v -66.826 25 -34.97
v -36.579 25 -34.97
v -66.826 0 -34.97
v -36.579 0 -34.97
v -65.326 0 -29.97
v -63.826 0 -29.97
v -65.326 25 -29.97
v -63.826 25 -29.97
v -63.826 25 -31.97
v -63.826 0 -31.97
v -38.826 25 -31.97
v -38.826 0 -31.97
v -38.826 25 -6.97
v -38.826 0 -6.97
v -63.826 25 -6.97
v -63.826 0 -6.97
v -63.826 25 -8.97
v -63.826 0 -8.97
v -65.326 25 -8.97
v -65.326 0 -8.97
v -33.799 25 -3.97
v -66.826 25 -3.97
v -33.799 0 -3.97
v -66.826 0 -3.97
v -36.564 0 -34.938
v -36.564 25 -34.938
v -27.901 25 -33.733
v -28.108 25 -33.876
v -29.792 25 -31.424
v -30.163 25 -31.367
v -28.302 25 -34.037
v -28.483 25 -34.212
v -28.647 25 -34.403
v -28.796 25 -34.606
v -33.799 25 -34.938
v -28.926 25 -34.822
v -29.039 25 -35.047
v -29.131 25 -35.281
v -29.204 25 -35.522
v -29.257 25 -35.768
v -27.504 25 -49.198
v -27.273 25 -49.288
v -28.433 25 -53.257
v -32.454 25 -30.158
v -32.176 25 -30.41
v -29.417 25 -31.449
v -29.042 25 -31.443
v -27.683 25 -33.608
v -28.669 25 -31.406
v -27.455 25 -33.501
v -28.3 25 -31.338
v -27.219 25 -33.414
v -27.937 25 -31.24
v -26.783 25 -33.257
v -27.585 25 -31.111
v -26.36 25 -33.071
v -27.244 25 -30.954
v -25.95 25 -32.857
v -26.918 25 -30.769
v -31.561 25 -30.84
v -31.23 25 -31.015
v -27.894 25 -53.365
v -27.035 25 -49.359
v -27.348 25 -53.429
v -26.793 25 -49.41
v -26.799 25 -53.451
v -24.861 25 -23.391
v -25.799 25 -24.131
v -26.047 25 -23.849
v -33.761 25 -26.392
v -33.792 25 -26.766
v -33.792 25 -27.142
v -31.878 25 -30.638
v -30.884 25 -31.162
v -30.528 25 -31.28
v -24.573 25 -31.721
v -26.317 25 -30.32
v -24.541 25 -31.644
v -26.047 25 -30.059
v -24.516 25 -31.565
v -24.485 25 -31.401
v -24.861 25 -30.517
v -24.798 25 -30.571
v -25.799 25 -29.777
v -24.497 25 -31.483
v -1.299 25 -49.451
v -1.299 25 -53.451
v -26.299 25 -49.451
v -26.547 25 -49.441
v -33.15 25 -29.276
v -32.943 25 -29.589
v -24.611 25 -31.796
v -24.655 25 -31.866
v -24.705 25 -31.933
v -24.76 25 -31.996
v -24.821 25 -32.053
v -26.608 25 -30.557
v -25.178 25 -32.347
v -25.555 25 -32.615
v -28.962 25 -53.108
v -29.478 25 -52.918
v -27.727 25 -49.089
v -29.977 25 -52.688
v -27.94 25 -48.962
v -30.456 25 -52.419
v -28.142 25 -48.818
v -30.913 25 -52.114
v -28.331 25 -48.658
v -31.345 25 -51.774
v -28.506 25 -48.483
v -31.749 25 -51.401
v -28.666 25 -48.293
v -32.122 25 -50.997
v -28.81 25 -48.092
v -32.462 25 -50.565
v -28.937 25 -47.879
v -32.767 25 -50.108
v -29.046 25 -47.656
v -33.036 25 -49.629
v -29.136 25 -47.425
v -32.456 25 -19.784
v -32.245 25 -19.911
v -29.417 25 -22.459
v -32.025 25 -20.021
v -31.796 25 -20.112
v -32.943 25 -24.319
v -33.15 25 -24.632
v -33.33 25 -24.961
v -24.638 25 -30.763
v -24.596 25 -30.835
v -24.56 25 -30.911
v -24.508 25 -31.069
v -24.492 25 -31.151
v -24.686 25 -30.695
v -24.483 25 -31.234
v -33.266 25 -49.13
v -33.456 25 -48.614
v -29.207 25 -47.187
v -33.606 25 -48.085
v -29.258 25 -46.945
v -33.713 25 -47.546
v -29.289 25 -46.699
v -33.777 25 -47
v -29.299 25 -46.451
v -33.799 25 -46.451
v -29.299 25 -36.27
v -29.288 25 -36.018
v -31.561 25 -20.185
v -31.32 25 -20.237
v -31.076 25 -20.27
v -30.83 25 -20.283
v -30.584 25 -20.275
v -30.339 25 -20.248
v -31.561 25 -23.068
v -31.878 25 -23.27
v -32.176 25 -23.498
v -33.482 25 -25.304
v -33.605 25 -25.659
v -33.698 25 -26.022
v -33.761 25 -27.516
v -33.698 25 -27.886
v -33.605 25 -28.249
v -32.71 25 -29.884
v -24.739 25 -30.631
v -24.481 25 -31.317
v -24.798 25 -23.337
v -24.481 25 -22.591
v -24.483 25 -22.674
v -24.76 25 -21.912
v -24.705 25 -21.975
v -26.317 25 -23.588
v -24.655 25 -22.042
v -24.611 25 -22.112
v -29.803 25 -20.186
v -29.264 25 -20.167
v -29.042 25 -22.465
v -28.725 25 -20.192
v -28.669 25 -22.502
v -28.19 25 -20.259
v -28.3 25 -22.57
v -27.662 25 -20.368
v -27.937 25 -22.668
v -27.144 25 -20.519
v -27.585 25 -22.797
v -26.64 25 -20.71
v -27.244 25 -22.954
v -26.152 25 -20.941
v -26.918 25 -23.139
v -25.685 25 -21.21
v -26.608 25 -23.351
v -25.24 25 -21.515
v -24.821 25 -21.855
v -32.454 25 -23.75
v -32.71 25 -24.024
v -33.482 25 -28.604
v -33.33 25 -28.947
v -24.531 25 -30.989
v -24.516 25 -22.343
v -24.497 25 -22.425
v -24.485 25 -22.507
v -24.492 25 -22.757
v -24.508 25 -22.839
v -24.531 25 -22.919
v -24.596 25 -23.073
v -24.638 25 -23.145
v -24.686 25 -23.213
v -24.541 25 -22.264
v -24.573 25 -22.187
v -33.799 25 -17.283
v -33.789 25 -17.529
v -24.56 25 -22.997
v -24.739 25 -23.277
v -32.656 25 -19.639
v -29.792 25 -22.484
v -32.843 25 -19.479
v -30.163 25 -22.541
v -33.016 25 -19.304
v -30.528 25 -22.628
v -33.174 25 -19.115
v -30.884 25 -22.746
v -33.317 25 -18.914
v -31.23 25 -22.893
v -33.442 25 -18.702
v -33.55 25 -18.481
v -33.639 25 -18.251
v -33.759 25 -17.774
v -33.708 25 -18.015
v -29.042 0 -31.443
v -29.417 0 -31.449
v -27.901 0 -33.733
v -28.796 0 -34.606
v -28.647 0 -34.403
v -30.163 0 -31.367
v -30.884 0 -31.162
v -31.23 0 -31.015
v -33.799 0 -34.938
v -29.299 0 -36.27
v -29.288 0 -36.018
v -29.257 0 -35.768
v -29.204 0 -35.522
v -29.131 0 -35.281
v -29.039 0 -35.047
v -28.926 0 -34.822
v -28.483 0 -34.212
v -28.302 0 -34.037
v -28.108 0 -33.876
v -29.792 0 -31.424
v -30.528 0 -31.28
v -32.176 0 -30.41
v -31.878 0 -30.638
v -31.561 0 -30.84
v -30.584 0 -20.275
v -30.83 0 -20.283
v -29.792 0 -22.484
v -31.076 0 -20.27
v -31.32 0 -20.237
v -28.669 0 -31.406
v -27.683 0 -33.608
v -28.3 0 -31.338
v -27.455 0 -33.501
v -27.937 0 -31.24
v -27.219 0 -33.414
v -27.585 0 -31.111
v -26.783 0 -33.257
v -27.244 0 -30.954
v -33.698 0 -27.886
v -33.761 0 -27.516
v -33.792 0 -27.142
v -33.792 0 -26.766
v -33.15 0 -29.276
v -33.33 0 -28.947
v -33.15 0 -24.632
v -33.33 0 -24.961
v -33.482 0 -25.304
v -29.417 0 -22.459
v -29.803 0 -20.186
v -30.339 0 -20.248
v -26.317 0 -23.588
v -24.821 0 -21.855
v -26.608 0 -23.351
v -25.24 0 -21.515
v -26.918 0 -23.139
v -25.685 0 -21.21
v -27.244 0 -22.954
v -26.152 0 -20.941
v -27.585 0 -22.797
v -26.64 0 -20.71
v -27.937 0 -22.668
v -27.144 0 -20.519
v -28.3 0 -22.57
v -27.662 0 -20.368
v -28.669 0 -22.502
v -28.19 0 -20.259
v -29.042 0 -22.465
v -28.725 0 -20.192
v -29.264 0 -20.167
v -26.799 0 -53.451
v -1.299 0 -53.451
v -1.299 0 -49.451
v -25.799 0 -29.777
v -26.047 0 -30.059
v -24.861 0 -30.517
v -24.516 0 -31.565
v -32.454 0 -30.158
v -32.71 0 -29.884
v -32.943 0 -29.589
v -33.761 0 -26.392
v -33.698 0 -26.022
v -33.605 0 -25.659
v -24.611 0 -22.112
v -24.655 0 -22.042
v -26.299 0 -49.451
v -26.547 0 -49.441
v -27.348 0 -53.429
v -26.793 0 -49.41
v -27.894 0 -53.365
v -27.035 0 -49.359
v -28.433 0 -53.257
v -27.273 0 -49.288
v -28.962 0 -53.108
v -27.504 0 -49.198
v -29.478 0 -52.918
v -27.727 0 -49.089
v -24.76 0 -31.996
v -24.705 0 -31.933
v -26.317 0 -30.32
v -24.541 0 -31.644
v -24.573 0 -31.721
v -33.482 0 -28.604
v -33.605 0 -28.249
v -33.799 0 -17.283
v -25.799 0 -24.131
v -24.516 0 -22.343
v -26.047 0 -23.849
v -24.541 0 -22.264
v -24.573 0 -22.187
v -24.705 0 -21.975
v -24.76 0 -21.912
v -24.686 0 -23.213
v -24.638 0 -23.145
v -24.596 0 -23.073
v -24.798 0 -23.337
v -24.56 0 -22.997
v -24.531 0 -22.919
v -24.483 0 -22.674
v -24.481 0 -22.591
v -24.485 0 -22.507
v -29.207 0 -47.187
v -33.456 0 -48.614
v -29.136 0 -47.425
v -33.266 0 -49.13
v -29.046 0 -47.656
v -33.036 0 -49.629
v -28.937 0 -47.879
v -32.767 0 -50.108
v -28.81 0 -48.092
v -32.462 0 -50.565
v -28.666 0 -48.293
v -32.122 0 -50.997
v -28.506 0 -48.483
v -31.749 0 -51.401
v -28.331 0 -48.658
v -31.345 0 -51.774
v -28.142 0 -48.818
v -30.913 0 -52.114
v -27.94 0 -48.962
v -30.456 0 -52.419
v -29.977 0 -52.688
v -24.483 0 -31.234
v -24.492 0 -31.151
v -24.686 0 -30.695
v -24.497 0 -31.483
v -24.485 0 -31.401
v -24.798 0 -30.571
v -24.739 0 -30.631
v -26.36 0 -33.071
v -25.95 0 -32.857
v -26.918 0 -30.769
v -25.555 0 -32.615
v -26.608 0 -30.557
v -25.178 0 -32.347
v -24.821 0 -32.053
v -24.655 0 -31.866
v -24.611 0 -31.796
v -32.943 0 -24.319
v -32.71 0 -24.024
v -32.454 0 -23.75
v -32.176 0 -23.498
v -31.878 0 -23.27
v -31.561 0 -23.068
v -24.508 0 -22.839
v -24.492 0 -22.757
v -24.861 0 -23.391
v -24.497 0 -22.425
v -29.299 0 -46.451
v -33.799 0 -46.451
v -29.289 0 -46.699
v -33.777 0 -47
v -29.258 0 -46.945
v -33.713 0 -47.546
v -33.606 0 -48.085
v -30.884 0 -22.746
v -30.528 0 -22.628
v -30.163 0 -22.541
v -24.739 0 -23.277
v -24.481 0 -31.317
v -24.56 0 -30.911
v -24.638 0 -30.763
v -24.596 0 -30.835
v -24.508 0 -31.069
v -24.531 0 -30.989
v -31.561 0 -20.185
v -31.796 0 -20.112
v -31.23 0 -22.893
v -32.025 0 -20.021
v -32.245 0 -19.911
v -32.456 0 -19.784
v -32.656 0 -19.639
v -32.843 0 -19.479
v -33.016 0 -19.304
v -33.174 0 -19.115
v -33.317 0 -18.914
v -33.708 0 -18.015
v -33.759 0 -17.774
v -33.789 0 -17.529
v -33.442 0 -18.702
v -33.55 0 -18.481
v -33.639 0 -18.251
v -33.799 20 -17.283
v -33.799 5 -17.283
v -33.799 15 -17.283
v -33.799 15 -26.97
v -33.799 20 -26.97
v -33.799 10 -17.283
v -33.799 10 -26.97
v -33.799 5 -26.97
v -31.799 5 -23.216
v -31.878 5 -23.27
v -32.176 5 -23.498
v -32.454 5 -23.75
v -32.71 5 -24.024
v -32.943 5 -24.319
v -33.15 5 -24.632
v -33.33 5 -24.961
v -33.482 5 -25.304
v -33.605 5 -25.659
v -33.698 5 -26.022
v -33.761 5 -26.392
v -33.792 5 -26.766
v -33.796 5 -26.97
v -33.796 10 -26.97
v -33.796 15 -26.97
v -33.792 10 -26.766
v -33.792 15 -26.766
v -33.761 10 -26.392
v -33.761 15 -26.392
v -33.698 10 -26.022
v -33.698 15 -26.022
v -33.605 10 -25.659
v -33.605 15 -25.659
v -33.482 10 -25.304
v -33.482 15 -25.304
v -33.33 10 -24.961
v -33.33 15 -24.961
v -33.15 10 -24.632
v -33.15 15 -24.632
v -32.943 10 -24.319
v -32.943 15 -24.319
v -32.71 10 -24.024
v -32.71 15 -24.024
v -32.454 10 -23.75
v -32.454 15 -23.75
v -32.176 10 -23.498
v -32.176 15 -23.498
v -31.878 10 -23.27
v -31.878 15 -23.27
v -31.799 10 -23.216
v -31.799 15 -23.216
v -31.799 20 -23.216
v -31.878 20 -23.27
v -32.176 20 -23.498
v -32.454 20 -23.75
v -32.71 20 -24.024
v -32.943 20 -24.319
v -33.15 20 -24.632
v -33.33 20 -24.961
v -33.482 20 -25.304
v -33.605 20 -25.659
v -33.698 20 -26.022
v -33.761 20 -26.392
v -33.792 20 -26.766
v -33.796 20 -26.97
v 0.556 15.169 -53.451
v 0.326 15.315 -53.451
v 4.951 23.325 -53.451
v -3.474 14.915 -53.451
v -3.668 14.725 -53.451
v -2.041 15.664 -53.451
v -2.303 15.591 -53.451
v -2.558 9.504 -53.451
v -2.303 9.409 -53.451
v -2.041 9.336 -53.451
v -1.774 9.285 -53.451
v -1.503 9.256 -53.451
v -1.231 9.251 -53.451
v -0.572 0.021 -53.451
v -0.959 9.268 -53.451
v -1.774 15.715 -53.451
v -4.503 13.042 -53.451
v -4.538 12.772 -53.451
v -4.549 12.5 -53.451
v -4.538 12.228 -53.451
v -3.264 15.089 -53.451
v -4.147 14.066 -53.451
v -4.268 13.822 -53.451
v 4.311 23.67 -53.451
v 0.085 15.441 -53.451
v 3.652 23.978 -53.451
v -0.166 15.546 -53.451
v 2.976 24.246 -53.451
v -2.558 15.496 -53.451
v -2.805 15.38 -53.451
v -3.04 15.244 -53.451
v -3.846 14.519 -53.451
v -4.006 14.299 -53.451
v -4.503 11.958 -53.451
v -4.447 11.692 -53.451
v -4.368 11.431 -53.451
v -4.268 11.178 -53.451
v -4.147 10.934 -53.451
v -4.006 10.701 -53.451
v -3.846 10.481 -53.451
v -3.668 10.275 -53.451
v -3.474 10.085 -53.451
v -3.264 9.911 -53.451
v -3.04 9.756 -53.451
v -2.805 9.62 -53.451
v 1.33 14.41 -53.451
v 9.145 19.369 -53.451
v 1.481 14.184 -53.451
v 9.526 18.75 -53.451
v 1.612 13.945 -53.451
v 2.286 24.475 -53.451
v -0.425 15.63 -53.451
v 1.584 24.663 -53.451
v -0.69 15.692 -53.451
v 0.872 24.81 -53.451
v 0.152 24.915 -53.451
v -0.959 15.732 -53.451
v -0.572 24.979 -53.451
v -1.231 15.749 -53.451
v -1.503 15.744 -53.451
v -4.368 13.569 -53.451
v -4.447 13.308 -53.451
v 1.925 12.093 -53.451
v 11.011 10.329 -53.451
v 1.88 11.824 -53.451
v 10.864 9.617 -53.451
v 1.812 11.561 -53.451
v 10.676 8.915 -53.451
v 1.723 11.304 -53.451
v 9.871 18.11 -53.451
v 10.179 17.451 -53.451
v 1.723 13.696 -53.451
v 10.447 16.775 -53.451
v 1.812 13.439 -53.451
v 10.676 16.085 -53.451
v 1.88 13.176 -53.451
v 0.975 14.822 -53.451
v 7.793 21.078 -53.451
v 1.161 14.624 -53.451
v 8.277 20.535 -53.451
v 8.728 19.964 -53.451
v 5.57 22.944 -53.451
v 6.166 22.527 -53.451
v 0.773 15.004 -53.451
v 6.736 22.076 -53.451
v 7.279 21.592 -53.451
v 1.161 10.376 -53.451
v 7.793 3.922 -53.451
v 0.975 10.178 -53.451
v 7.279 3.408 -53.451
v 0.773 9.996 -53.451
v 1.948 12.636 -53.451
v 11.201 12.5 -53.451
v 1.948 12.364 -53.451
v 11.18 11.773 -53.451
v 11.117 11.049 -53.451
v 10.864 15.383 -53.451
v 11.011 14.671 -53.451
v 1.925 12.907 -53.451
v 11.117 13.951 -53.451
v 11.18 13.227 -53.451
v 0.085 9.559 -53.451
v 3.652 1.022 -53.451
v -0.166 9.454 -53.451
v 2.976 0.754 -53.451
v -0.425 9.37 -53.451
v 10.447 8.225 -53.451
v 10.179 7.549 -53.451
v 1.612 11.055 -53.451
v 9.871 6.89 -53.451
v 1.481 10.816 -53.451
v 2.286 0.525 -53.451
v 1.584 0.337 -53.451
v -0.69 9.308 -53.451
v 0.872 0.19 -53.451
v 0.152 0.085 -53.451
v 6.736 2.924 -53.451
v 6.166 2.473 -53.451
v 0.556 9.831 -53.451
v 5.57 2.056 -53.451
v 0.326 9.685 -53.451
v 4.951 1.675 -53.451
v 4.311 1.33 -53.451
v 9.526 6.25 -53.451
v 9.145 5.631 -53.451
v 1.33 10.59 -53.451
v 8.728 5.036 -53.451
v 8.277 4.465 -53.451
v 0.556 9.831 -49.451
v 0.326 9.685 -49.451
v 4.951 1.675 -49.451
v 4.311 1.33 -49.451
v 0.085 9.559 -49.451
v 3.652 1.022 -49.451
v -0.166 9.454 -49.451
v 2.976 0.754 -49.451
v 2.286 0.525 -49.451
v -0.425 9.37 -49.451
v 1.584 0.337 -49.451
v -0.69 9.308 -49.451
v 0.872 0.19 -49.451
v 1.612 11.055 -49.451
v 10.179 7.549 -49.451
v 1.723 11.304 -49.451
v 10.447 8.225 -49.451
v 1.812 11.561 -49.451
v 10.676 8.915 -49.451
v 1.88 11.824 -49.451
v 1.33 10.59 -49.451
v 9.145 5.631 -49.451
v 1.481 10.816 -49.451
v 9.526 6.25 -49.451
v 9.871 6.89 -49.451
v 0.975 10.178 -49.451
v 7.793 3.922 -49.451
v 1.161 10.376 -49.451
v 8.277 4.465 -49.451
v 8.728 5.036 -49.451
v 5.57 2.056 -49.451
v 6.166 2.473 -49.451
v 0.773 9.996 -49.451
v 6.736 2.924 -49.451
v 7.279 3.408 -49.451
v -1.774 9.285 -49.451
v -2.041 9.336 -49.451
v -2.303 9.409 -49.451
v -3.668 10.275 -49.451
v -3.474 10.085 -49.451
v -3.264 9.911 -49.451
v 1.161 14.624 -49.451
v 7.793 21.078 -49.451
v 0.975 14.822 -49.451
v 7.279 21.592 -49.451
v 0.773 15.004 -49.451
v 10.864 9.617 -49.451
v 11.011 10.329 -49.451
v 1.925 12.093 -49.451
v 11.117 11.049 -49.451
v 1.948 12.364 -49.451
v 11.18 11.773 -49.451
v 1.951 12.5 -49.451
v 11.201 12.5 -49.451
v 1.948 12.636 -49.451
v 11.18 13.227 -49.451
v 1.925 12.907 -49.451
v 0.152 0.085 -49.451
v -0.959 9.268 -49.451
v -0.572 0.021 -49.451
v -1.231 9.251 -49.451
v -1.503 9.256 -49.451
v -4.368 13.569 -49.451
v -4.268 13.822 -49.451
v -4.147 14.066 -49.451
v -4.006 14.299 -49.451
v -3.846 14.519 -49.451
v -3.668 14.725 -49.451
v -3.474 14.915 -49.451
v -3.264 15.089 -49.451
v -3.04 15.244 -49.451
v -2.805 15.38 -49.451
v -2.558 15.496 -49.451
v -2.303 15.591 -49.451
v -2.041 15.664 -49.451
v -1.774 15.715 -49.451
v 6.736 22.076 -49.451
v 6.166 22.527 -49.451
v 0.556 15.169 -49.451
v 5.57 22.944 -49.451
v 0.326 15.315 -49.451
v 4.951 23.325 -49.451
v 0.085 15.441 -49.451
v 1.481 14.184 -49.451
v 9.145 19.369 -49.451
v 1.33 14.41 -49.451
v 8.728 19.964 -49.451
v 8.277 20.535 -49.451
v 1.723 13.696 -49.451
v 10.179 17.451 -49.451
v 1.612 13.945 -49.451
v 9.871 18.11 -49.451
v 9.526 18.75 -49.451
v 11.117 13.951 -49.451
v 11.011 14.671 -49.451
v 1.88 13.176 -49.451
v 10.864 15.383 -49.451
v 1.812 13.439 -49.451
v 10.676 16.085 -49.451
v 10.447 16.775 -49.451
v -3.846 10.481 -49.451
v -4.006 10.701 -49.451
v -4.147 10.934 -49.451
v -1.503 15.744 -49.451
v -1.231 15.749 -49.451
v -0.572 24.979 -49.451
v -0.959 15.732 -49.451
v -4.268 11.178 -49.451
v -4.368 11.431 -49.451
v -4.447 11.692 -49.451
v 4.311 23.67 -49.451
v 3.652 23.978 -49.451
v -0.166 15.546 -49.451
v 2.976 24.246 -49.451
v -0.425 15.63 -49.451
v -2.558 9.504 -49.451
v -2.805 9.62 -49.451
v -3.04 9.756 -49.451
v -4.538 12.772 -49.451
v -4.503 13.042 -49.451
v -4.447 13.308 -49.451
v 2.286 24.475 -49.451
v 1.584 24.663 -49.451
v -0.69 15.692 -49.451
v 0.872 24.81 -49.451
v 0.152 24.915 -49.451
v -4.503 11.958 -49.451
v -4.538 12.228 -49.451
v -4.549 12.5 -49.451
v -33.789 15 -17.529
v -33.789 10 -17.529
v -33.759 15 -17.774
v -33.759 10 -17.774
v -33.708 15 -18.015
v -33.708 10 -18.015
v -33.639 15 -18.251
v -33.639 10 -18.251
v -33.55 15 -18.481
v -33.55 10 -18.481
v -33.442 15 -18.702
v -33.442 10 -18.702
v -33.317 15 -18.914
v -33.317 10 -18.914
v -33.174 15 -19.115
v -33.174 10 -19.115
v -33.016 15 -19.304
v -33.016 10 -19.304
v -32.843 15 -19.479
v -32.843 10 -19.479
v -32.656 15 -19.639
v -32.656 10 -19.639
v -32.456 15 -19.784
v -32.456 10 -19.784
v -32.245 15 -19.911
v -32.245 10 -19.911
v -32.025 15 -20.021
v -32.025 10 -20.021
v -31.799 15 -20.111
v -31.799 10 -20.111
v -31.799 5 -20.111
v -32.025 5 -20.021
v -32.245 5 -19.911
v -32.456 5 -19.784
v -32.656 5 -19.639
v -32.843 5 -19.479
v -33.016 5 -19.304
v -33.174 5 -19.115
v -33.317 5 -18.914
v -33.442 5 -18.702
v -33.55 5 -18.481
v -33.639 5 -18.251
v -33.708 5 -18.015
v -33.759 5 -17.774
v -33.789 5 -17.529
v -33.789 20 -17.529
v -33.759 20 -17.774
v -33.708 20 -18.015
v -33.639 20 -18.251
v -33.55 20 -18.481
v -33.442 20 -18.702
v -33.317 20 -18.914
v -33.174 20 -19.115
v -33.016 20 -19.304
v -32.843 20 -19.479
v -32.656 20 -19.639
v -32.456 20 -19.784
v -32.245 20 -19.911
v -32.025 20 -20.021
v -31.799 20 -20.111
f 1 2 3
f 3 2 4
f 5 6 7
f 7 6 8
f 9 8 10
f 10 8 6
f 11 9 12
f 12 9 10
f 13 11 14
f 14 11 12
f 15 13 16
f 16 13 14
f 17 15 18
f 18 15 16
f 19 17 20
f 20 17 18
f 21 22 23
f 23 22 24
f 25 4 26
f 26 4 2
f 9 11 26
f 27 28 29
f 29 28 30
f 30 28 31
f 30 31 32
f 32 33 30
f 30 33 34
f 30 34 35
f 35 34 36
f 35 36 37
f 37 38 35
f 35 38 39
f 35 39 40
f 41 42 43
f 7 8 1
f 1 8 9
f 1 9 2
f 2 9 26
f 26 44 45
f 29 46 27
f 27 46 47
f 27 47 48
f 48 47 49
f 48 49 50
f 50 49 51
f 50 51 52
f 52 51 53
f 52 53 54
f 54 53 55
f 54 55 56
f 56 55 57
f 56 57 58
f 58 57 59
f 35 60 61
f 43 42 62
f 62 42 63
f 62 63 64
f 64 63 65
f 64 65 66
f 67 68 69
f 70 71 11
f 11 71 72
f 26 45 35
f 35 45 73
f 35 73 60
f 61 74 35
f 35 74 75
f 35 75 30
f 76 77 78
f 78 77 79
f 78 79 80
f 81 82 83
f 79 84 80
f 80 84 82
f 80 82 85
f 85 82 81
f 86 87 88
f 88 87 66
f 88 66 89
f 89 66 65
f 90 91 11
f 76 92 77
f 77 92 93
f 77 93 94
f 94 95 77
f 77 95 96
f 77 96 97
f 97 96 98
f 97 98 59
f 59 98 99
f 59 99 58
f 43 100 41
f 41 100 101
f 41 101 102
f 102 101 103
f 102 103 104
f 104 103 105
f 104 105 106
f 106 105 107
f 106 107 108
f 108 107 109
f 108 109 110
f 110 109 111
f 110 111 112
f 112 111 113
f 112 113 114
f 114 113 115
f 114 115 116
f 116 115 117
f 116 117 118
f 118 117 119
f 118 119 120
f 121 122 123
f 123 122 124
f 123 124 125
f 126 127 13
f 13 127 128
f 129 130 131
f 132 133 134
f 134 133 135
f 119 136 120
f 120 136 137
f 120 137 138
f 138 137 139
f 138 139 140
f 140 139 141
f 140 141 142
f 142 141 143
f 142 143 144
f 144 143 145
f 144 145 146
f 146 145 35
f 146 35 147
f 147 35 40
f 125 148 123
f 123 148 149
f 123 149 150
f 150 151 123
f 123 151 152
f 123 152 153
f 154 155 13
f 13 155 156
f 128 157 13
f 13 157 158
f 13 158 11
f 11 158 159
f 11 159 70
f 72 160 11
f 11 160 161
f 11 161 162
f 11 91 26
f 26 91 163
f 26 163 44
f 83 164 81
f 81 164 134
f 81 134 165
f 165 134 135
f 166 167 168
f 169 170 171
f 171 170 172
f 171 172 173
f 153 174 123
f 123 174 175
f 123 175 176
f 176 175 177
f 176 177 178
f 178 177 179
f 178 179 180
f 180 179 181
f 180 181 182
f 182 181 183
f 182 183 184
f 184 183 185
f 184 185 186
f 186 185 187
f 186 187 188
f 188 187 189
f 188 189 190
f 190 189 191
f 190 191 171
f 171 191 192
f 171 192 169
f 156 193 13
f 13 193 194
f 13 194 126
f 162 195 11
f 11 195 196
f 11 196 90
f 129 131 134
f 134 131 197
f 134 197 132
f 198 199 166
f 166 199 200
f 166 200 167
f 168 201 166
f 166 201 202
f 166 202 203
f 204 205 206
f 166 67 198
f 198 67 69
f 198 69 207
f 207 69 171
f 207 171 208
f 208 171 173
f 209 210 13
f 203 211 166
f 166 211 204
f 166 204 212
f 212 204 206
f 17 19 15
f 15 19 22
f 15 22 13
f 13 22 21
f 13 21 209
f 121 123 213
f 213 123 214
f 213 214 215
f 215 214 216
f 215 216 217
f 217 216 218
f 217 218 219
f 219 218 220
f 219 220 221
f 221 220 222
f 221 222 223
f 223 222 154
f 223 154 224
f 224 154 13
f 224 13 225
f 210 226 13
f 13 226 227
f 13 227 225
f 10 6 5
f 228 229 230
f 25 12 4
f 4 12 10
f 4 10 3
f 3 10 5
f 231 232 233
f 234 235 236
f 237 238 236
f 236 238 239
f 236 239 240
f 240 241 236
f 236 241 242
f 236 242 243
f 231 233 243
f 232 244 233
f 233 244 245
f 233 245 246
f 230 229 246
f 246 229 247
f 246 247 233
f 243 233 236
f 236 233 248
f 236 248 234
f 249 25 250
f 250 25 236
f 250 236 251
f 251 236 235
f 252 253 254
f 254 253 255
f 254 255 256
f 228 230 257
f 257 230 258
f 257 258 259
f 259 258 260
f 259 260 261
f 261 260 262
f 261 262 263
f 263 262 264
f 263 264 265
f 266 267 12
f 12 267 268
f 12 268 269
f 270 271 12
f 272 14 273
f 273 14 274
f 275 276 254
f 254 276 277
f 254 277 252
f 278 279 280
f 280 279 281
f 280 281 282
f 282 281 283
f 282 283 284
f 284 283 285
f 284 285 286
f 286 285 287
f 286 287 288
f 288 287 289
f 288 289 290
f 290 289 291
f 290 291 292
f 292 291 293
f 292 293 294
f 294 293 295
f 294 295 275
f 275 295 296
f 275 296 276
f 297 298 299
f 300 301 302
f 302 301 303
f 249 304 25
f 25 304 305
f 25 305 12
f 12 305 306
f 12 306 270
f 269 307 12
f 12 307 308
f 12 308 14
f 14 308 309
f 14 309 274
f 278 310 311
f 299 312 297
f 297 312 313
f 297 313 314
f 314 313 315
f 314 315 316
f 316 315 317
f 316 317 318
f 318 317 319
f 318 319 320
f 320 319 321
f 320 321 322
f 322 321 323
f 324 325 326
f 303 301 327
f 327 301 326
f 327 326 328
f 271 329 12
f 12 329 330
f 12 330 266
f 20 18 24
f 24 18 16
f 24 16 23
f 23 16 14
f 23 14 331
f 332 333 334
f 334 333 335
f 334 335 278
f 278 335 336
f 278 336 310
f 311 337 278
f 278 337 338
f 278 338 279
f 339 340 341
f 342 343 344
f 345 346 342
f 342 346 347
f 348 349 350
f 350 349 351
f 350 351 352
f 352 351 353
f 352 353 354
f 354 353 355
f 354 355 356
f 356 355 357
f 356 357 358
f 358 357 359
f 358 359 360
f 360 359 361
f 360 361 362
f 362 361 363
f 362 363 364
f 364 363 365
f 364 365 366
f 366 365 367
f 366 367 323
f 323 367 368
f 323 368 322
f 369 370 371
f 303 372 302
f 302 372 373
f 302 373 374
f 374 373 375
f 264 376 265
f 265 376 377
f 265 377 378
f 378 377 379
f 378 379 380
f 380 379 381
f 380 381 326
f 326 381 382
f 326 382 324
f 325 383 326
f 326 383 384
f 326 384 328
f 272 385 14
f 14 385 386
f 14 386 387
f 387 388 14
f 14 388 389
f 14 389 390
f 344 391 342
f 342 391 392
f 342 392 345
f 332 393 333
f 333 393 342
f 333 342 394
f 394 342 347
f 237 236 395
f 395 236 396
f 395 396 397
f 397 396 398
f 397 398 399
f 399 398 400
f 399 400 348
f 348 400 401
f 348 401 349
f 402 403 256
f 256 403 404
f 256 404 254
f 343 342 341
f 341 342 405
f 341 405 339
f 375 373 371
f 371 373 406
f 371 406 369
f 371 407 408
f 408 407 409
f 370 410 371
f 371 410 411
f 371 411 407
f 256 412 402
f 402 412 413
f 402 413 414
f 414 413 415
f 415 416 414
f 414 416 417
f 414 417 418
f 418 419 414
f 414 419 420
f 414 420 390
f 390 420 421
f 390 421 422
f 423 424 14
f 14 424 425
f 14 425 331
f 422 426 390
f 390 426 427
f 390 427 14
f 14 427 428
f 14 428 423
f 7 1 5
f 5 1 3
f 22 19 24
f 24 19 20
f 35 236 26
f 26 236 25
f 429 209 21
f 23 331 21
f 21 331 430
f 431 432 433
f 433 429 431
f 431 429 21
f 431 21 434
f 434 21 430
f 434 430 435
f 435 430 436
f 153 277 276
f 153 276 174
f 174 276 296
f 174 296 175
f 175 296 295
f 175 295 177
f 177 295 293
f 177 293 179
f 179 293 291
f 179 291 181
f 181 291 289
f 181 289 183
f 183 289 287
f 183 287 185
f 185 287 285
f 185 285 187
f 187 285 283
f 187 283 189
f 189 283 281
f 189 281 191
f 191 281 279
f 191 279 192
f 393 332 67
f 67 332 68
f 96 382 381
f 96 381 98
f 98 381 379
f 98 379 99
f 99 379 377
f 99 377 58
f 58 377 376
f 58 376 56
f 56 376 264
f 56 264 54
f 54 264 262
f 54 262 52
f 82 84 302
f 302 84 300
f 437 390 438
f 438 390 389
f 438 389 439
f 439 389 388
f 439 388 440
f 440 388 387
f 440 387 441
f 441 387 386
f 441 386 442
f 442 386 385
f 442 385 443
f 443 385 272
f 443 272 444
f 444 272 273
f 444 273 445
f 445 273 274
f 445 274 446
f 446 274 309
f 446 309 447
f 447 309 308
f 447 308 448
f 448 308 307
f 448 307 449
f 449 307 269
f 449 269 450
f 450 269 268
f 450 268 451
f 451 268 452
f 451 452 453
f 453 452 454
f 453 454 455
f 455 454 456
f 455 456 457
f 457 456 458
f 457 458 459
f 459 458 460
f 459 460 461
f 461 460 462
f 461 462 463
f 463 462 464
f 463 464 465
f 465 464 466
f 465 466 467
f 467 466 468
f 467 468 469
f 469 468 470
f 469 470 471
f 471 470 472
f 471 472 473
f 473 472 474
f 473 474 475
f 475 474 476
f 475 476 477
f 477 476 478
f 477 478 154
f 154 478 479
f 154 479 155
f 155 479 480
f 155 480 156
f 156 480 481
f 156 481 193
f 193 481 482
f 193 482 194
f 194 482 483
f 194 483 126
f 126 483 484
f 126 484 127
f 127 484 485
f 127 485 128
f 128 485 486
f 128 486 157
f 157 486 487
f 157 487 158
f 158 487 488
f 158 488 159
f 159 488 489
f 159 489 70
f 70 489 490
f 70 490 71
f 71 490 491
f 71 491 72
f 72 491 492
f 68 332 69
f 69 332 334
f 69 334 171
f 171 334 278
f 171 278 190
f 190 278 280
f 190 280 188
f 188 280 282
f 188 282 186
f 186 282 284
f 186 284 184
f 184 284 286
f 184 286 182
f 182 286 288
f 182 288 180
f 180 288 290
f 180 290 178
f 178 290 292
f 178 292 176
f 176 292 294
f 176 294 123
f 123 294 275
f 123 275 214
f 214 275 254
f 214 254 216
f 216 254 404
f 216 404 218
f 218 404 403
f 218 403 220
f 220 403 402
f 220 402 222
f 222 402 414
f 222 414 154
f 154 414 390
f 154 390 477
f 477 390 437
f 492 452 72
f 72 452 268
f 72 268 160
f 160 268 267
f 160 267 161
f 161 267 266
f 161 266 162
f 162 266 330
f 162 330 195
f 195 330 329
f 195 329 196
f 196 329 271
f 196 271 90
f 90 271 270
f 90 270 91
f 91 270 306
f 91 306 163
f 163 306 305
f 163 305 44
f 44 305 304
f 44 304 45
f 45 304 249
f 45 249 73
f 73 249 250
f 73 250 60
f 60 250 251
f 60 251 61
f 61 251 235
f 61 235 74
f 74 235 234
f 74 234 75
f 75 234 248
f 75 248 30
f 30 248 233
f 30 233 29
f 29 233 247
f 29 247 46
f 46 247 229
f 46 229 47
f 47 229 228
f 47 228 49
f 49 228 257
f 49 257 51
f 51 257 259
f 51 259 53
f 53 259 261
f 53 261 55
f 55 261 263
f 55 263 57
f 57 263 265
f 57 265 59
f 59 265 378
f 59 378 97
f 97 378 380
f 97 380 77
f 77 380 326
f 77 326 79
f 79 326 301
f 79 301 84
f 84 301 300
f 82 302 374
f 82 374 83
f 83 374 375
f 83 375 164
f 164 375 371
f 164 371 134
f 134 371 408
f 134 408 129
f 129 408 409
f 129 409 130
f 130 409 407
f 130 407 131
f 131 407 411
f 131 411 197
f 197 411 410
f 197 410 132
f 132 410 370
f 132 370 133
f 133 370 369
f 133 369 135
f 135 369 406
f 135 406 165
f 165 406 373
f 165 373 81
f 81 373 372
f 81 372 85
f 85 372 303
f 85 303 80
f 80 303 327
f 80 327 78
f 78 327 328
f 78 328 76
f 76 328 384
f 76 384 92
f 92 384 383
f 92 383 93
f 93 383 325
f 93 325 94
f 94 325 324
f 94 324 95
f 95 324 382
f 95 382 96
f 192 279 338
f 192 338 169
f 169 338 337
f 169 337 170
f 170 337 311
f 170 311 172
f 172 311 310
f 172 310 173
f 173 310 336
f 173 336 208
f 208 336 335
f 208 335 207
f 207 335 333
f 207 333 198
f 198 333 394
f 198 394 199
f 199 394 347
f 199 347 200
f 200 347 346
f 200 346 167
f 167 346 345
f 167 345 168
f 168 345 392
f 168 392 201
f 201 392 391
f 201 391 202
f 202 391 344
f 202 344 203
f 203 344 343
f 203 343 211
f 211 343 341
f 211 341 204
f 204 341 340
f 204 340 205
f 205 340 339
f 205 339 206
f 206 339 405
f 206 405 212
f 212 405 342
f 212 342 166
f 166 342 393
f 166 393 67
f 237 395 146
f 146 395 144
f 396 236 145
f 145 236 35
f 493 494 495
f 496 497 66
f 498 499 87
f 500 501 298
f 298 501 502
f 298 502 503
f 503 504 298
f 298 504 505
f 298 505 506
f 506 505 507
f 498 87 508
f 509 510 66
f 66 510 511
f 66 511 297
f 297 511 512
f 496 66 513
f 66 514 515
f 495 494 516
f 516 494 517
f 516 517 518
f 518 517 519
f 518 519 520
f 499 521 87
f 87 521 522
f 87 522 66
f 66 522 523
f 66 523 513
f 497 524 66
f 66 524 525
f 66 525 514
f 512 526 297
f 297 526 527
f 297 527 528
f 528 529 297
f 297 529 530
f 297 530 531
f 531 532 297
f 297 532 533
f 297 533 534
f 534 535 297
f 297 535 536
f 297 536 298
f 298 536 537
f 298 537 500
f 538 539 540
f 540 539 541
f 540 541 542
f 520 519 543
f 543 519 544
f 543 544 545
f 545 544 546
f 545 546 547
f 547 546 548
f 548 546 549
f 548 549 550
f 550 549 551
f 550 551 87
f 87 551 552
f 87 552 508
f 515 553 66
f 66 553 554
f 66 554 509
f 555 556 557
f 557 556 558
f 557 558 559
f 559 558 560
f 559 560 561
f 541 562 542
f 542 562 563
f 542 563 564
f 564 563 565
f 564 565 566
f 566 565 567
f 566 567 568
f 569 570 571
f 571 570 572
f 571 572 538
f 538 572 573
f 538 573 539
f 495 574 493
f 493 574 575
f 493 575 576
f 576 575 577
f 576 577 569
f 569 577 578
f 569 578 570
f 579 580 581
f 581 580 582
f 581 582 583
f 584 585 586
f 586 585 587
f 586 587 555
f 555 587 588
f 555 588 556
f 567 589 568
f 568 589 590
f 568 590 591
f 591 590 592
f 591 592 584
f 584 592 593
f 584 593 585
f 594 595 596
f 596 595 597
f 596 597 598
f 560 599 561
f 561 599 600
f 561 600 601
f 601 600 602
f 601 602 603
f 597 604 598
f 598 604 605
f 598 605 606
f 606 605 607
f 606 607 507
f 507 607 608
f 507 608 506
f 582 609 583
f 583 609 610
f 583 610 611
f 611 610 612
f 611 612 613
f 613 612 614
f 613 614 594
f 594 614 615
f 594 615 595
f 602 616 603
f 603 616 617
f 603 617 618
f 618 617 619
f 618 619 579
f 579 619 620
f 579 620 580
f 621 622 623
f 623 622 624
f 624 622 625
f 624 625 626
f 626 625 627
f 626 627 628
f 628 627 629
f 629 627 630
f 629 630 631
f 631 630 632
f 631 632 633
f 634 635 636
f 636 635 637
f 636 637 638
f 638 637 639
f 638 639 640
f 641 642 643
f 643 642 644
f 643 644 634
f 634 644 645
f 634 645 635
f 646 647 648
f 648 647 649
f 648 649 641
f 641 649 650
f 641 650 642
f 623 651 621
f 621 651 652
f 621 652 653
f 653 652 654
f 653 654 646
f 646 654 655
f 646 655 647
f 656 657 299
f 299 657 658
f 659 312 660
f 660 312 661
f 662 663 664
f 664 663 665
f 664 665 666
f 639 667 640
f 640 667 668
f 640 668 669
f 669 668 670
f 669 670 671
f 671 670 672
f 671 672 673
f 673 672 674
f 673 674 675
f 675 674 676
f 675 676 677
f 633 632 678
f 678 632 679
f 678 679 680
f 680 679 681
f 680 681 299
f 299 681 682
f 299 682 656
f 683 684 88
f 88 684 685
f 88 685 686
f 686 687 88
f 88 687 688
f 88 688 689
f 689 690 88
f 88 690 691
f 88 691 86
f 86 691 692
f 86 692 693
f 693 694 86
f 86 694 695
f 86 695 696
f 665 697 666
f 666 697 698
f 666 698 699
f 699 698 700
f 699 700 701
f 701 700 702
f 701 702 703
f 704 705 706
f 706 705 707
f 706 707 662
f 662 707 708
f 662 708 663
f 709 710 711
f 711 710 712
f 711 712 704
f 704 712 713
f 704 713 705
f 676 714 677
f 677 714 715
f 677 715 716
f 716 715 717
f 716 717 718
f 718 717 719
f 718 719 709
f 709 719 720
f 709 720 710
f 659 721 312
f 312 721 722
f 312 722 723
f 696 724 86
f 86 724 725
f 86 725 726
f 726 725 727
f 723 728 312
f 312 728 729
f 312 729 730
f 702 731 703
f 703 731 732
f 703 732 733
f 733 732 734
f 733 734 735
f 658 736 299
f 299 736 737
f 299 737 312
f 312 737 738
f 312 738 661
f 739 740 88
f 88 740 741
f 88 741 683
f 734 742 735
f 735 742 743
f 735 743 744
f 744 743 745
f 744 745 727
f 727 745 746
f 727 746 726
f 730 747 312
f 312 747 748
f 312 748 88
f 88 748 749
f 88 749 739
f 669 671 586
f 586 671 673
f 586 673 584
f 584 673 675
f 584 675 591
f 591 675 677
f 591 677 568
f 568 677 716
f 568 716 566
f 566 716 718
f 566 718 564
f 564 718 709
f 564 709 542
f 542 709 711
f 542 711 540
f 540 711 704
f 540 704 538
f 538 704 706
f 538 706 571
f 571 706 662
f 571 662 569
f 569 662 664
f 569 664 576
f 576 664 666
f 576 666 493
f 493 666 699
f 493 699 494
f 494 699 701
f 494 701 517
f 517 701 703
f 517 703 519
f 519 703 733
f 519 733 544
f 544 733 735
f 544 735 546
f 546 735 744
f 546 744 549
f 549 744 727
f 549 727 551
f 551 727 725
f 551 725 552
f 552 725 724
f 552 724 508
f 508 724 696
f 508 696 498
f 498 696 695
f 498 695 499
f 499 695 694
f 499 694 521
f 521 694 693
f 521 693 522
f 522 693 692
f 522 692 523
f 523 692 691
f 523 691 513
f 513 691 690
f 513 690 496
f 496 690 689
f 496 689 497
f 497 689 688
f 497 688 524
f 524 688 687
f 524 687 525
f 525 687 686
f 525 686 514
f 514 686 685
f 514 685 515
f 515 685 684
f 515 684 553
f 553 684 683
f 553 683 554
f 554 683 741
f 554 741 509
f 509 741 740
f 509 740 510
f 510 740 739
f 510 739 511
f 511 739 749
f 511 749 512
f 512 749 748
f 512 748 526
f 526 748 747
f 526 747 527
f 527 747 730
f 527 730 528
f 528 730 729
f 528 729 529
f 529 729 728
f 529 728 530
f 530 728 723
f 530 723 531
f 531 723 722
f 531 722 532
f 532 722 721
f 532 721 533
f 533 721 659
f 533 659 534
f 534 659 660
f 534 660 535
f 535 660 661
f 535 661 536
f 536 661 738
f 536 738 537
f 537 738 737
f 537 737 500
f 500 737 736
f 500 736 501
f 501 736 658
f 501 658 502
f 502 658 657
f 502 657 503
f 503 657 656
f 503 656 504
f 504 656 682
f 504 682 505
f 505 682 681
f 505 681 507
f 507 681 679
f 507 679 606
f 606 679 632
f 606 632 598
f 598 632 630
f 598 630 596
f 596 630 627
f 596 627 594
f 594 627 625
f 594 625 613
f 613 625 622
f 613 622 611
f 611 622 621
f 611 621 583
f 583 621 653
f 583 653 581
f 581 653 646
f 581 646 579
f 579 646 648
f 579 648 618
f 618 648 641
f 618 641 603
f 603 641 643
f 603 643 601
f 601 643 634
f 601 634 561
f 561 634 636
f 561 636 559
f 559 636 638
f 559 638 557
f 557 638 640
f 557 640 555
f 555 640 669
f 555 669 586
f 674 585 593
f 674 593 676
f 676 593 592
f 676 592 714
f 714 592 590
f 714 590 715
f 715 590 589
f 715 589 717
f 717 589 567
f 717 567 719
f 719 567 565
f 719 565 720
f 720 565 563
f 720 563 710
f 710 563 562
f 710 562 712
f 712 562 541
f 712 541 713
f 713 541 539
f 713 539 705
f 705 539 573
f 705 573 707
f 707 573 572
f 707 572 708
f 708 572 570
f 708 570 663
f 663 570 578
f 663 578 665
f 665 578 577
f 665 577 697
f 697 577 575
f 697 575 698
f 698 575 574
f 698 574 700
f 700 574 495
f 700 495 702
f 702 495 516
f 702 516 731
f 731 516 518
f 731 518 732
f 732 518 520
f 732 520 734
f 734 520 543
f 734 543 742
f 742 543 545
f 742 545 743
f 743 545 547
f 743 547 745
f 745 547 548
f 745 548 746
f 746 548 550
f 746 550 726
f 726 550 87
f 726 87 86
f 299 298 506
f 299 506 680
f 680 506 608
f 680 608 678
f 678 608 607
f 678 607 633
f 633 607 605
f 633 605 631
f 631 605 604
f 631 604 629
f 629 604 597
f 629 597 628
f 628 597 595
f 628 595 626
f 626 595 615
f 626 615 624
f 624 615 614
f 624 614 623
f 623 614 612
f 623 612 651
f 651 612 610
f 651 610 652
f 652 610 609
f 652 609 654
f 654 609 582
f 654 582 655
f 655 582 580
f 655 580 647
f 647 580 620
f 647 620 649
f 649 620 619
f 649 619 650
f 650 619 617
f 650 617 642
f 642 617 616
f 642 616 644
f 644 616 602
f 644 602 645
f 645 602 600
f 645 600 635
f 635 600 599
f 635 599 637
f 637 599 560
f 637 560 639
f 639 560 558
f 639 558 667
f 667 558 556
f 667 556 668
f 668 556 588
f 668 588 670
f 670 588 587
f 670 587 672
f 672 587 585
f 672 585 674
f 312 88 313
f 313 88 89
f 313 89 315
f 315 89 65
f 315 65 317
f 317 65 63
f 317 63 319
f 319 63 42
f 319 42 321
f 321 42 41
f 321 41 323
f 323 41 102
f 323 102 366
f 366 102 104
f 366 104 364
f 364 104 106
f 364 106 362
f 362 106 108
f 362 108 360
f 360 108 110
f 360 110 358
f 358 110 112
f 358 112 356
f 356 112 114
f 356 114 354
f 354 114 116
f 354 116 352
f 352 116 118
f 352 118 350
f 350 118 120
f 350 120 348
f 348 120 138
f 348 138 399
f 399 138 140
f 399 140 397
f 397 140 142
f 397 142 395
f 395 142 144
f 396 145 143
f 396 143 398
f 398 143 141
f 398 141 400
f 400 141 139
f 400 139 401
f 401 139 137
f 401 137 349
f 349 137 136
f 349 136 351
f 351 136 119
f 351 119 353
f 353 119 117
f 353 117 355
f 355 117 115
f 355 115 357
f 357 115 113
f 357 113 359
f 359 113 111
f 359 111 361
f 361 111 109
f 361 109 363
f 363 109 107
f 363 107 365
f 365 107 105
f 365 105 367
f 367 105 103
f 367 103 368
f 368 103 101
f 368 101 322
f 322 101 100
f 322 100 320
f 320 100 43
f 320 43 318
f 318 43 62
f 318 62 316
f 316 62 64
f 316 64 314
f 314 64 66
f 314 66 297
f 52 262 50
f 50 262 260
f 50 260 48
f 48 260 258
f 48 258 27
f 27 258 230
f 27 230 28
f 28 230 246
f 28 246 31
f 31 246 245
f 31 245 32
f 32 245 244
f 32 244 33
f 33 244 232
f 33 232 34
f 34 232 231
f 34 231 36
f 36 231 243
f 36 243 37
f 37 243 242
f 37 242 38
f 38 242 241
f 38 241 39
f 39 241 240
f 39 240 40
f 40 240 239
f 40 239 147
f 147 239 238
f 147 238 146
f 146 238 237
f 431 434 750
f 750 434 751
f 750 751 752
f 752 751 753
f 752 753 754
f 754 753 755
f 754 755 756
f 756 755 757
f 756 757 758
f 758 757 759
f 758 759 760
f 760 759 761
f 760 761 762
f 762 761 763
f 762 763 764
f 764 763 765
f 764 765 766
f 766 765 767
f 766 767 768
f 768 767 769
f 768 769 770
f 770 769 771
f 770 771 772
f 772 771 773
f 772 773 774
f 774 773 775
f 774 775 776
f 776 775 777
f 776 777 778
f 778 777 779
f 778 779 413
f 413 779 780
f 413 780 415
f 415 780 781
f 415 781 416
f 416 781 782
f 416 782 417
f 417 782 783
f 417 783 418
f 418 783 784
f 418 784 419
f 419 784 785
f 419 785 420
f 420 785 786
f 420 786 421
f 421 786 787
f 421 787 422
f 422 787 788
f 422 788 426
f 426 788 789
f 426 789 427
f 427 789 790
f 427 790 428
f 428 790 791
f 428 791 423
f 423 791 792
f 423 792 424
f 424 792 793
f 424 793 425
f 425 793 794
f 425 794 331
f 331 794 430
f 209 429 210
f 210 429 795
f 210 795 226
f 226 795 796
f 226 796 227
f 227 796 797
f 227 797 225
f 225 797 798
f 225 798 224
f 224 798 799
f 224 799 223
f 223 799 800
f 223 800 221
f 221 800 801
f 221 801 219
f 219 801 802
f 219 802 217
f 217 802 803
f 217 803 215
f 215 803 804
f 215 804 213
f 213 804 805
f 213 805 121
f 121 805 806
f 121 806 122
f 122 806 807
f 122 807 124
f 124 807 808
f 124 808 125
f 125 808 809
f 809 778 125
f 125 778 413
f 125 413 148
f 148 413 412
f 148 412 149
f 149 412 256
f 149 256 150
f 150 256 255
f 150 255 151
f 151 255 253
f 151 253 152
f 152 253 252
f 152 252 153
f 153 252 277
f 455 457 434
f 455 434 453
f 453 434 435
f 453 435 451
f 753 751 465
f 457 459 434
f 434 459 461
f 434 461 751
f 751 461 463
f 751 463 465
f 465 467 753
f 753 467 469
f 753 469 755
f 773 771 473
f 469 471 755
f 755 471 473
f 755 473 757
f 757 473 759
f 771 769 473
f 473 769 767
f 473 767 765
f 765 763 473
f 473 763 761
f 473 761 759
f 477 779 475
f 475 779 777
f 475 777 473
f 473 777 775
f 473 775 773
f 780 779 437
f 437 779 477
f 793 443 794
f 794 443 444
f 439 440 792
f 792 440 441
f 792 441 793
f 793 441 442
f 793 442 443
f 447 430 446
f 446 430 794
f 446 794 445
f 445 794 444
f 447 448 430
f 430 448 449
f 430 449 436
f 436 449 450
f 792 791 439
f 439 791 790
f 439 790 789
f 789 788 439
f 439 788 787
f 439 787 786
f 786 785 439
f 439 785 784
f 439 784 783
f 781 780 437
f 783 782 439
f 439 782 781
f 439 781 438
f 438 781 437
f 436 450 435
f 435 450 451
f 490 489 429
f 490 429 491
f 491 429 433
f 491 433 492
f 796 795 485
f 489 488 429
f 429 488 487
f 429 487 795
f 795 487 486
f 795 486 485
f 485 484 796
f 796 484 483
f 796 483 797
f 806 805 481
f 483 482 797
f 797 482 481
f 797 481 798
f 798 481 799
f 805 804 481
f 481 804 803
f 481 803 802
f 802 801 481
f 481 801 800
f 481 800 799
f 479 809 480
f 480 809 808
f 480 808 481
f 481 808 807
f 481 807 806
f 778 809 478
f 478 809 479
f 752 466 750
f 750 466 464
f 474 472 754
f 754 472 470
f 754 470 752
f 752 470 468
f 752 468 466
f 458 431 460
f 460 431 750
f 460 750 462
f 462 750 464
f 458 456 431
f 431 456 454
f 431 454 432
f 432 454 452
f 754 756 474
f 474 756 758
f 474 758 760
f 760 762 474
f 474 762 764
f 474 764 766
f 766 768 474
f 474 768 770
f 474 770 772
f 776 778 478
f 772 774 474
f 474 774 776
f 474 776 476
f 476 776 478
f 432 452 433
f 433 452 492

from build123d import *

# Parameters (mm, degrees)
EXTRUDE_1_DEPTH      = 25
CUT_EXTRUDE_4_DEPTH  = 80.457942189
SKETCH_7_W           = 16.60831278
SKETCH_7_H           = 38.473598513
CUT_EXTRUDE_14_DEPTH = 80.457942189
SKETCH_8_W           = 5
SKETCH_8_H           = 30.968526609
EXTRUDE_2_DEPTH      = 25
EXTRUDE_3_DEPTH      = 25
FILLET_4_R           = 1
SKETCH_10_W          = 10.885979968
SKETCH_10_H          = 16.094938527
CUT_EXTRUDE_15_DEPTH = 80.457942189
SKETCH_11_W          = 4.5
SKETCH_11_H          = 22
EXTRUDE_5_DEPTH      = 25
SKETCH_14_W          = 45
SKETCH_14_H          = 4
EXTRUDE_6_DEPTH      = 25
SKETCH_15_R          = 3.25
CUT_EXTRUDE_19_DEPTH = 10
FILLET_5_R           = 12.5
FILLET_6_R           = 3
FILLET_7_R           = 7
FILLET_8_R           = 3
SKETCH_17_W          = 2
SKETCH_17_H          = 5
CUT_EXTRUDE_21_DEPTH = 23


with BuildPart() as part:
    # Эскиз1 → Бобышка-Вытянуть1 (new body)
    with BuildSketch(Plane(origin=(0, 0, 0), x_dir=(1, 0, 0), z_dir=(0, 1, 0))):
        Polygon((-66.825757576, 34.969739794), (-66.825757576, 29.969739794), (-63.825757576, 29.969739794), (-63.825757576, 31.969739794), (-38.825757576, 31.969739794), (-38.825757576, 6.969739794), (-63.825757576, 6.969739794), (-63.825757576, 8.969739794), (-66.825757576, 8.969739794), (-66.825757576, 3.969739794), (-22.123470102, 3.969739794), (-36.579007505, 34.969739794), align=None)
    extrude(amount=EXTRUDE_1_DEPTH)

    # Эскиз3 → Вырез-Вытянуть4 (cut, through all)
    with BuildSketch(Plane.XZ):
        Polygon((-66.825757576, -3.969739794), (-65.325757576, -8.969739794), (-66.825757576, -8.969739794), align=None)
        Polygon((-66.825757576, -29.969739794), (-66.825757576, -34.969739794), (-65.325757576, -29.969739794), align=None)
    extrude(amount=-CUT_EXTRUDE_4_DEPTH, mode=Mode.SUBTRACT)

    # Эскиз7 → Вырез-Вытянуть14 (cut, through all)
    with BuildSketch(Plane(origin=(0, 0, 0), x_dir=(-1, 0, 0), z_dir=(0, -1, 0))):
        with Locations((27.703474463, 20.539743139)):
            Rectangle(SKETCH_7_W, SKETCH_7_H)
    extrude(amount=-CUT_EXTRUDE_14_DEPTH, mode=Mode.SUBTRACT)

    # Эскиз8 → Бобышка-Вытянуть2 (add)
    with BuildSketch(Plane(origin=(0, 0, 0), x_dir=(-1, 0, 0), z_dir=(0, -1, 0))):
        with Locations((36.298943925, 19.454003098)):
            Rectangle(SKETCH_8_W, SKETCH_8_H)
    extrude(amount=-EXTRUDE_2_DEPTH)

    # Эскиз9 → Бобышка-Вытянуть3 (add)
    with BuildSketch(Plane.XZ):
        with BuildLine():
            Line((-25.798943925, -9.121669553), (-24.000865345, -7.695483003))
            ThreePointArc((-24.000865345, -7.695483003), (-36.096342696, -11.954003099), (-24.000865345, -16.212523195))
            Line((-24.000865345, -16.212523195), (-25.798943925, -14.786336644))
            ThreePointArc((-25.798943925, -14.786336644), (-33.80140029, -11.954003099), (-25.798943925, -9.121669553))
        make_face()
        with BuildLine():
            Line((-25.798943925, -24.130682885), (-24.000865345, -22.7126007))
            ThreePointArc((-24.000865345, -22.7126007), (-36.0856317, -26.954003099), (-24.000865345, -31.195405497))
            Line((-24.000865345, -31.195405497), (-25.798943925, -29.777323313))
            ThreePointArc((-25.798943925, -29.777323313), (-33.795735785, -26.954003099), (-25.798943925, -24.130682885))
        make_face()
    extrude(amount=-EXTRUDE_3_DEPTH)

    # Скругление4
    fillet_4_edges = [part.edges().sort_by_distance(p)[0] for p in [
        (-24.000865345, 12.5, -7.695483003),
        (-24.000865345, 12.5, -16.212523195),
        (-24.000865345, 12.5, -22.7126007),
        (-24.000865345, 12.5, -31.195405497),
    ]]
    fillet(fillet_4_edges, radius=FILLET_4_R)

    # Эскиз10 → Вырез-Вытянуть15 (cut, through all)
    with BuildSketch(Plane(origin=(0, 25, 0), x_dir=(1, 0, 0), z_dir=(0, 1, 0))):
        with Locations((-28.355953941, 12.017209058)):
            Rectangle(SKETCH_10_W, SKETCH_10_H)
    extrude(amount=-CUT_EXTRUDE_15_DEPTH, mode=Mode.SUBTRACT)

    # Эскиз11 → Бобышка-Вытянуть5 (add)
    with BuildSketch(Plane(origin=(0, 25, 0), x_dir=(1, 0, 0), z_dir=(0, 1, 0))):
        with Locations((-31.548943925, 42.450794958)):
            Rectangle(SKETCH_11_W, SKETCH_11_H)
    extrude(amount=-EXTRUDE_5_DEPTH)

    # Эскиз14 → Бобышка-Вытянуть6 (add)
    with BuildSketch(Plane(origin=(0, 25, 0), x_dir=(1, 0, 0), z_dir=(0, 1, 0))):
        with Locations((-11.298943925, 51.450794958)):
            Rectangle(SKETCH_14_W, SKETCH_14_H)
    extrude(amount=-EXTRUDE_6_DEPTH)

    # Эскиз15 → Вырез-Вытянуть19 (cut)
    with BuildSketch(Plane(origin=(0, 0, -53.450794958), x_dir=(-1, 0, 0), z_dir=(0, 0, -1))):
        with Locations((1.298943925, 12.5)):
            Circle(SKETCH_15_R)
    extrude(amount=-CUT_EXTRUDE_19_DEPTH, mode=Mode.SUBTRACT)

    # Скругление5
    fillet_5_edges = [part.edges().sort_by_distance(p)[0] for p in [
        (11.201056075, 0, -51.450794958),
        (11.201056075, 25, -51.450794958),
    ]]
    fillet(fillet_5_edges, radius=FILLET_5_R - 0.0001)  # a hair under: the kernel refuses the full size

    # Скругление6
    fillet_6_edges = [part.edges().sort_by_distance(p)[0] for p in [
        (-29.298943925, 12.5, -49.450794958),
    ]]
    fillet(fillet_6_edges, radius=FILLET_6_R)

    # Скругление7
    fillet_7_edges = [part.edges().sort_by_distance(p)[0] for p in [
        (-33.798943925, 12.5, -53.450794958),
    ]]
    fillet(fillet_7_edges, radius=FILLET_7_R)

    # Скругление8
    fillet_8_edges = [part.edges().sort_by_distance(p)[0] for p in [
        (-33.798943925, 12.5, -21.873734311),
        (-29.298943925, 12.5, -33.740690873),
    ]]
    fillet(fillet_8_edges, radius=FILLET_8_R)

    # Эскиз17 → Вырез-Вытянуть21 (cut)
    with BuildSketch(Plane.XY.offset(-3.969739794)):
        with Locations((-32.798943925, 17.5)):
            Rectangle(SKETCH_17_W, SKETCH_17_H)
        with Locations((-32.798943925, 7.5)):
            Rectangle(SKETCH_17_W, SKETCH_17_H)
    extrude(amount=-CUT_EXTRUDE_21_DEPTH, mode=Mode.SUBTRACT)


solid = part.part
